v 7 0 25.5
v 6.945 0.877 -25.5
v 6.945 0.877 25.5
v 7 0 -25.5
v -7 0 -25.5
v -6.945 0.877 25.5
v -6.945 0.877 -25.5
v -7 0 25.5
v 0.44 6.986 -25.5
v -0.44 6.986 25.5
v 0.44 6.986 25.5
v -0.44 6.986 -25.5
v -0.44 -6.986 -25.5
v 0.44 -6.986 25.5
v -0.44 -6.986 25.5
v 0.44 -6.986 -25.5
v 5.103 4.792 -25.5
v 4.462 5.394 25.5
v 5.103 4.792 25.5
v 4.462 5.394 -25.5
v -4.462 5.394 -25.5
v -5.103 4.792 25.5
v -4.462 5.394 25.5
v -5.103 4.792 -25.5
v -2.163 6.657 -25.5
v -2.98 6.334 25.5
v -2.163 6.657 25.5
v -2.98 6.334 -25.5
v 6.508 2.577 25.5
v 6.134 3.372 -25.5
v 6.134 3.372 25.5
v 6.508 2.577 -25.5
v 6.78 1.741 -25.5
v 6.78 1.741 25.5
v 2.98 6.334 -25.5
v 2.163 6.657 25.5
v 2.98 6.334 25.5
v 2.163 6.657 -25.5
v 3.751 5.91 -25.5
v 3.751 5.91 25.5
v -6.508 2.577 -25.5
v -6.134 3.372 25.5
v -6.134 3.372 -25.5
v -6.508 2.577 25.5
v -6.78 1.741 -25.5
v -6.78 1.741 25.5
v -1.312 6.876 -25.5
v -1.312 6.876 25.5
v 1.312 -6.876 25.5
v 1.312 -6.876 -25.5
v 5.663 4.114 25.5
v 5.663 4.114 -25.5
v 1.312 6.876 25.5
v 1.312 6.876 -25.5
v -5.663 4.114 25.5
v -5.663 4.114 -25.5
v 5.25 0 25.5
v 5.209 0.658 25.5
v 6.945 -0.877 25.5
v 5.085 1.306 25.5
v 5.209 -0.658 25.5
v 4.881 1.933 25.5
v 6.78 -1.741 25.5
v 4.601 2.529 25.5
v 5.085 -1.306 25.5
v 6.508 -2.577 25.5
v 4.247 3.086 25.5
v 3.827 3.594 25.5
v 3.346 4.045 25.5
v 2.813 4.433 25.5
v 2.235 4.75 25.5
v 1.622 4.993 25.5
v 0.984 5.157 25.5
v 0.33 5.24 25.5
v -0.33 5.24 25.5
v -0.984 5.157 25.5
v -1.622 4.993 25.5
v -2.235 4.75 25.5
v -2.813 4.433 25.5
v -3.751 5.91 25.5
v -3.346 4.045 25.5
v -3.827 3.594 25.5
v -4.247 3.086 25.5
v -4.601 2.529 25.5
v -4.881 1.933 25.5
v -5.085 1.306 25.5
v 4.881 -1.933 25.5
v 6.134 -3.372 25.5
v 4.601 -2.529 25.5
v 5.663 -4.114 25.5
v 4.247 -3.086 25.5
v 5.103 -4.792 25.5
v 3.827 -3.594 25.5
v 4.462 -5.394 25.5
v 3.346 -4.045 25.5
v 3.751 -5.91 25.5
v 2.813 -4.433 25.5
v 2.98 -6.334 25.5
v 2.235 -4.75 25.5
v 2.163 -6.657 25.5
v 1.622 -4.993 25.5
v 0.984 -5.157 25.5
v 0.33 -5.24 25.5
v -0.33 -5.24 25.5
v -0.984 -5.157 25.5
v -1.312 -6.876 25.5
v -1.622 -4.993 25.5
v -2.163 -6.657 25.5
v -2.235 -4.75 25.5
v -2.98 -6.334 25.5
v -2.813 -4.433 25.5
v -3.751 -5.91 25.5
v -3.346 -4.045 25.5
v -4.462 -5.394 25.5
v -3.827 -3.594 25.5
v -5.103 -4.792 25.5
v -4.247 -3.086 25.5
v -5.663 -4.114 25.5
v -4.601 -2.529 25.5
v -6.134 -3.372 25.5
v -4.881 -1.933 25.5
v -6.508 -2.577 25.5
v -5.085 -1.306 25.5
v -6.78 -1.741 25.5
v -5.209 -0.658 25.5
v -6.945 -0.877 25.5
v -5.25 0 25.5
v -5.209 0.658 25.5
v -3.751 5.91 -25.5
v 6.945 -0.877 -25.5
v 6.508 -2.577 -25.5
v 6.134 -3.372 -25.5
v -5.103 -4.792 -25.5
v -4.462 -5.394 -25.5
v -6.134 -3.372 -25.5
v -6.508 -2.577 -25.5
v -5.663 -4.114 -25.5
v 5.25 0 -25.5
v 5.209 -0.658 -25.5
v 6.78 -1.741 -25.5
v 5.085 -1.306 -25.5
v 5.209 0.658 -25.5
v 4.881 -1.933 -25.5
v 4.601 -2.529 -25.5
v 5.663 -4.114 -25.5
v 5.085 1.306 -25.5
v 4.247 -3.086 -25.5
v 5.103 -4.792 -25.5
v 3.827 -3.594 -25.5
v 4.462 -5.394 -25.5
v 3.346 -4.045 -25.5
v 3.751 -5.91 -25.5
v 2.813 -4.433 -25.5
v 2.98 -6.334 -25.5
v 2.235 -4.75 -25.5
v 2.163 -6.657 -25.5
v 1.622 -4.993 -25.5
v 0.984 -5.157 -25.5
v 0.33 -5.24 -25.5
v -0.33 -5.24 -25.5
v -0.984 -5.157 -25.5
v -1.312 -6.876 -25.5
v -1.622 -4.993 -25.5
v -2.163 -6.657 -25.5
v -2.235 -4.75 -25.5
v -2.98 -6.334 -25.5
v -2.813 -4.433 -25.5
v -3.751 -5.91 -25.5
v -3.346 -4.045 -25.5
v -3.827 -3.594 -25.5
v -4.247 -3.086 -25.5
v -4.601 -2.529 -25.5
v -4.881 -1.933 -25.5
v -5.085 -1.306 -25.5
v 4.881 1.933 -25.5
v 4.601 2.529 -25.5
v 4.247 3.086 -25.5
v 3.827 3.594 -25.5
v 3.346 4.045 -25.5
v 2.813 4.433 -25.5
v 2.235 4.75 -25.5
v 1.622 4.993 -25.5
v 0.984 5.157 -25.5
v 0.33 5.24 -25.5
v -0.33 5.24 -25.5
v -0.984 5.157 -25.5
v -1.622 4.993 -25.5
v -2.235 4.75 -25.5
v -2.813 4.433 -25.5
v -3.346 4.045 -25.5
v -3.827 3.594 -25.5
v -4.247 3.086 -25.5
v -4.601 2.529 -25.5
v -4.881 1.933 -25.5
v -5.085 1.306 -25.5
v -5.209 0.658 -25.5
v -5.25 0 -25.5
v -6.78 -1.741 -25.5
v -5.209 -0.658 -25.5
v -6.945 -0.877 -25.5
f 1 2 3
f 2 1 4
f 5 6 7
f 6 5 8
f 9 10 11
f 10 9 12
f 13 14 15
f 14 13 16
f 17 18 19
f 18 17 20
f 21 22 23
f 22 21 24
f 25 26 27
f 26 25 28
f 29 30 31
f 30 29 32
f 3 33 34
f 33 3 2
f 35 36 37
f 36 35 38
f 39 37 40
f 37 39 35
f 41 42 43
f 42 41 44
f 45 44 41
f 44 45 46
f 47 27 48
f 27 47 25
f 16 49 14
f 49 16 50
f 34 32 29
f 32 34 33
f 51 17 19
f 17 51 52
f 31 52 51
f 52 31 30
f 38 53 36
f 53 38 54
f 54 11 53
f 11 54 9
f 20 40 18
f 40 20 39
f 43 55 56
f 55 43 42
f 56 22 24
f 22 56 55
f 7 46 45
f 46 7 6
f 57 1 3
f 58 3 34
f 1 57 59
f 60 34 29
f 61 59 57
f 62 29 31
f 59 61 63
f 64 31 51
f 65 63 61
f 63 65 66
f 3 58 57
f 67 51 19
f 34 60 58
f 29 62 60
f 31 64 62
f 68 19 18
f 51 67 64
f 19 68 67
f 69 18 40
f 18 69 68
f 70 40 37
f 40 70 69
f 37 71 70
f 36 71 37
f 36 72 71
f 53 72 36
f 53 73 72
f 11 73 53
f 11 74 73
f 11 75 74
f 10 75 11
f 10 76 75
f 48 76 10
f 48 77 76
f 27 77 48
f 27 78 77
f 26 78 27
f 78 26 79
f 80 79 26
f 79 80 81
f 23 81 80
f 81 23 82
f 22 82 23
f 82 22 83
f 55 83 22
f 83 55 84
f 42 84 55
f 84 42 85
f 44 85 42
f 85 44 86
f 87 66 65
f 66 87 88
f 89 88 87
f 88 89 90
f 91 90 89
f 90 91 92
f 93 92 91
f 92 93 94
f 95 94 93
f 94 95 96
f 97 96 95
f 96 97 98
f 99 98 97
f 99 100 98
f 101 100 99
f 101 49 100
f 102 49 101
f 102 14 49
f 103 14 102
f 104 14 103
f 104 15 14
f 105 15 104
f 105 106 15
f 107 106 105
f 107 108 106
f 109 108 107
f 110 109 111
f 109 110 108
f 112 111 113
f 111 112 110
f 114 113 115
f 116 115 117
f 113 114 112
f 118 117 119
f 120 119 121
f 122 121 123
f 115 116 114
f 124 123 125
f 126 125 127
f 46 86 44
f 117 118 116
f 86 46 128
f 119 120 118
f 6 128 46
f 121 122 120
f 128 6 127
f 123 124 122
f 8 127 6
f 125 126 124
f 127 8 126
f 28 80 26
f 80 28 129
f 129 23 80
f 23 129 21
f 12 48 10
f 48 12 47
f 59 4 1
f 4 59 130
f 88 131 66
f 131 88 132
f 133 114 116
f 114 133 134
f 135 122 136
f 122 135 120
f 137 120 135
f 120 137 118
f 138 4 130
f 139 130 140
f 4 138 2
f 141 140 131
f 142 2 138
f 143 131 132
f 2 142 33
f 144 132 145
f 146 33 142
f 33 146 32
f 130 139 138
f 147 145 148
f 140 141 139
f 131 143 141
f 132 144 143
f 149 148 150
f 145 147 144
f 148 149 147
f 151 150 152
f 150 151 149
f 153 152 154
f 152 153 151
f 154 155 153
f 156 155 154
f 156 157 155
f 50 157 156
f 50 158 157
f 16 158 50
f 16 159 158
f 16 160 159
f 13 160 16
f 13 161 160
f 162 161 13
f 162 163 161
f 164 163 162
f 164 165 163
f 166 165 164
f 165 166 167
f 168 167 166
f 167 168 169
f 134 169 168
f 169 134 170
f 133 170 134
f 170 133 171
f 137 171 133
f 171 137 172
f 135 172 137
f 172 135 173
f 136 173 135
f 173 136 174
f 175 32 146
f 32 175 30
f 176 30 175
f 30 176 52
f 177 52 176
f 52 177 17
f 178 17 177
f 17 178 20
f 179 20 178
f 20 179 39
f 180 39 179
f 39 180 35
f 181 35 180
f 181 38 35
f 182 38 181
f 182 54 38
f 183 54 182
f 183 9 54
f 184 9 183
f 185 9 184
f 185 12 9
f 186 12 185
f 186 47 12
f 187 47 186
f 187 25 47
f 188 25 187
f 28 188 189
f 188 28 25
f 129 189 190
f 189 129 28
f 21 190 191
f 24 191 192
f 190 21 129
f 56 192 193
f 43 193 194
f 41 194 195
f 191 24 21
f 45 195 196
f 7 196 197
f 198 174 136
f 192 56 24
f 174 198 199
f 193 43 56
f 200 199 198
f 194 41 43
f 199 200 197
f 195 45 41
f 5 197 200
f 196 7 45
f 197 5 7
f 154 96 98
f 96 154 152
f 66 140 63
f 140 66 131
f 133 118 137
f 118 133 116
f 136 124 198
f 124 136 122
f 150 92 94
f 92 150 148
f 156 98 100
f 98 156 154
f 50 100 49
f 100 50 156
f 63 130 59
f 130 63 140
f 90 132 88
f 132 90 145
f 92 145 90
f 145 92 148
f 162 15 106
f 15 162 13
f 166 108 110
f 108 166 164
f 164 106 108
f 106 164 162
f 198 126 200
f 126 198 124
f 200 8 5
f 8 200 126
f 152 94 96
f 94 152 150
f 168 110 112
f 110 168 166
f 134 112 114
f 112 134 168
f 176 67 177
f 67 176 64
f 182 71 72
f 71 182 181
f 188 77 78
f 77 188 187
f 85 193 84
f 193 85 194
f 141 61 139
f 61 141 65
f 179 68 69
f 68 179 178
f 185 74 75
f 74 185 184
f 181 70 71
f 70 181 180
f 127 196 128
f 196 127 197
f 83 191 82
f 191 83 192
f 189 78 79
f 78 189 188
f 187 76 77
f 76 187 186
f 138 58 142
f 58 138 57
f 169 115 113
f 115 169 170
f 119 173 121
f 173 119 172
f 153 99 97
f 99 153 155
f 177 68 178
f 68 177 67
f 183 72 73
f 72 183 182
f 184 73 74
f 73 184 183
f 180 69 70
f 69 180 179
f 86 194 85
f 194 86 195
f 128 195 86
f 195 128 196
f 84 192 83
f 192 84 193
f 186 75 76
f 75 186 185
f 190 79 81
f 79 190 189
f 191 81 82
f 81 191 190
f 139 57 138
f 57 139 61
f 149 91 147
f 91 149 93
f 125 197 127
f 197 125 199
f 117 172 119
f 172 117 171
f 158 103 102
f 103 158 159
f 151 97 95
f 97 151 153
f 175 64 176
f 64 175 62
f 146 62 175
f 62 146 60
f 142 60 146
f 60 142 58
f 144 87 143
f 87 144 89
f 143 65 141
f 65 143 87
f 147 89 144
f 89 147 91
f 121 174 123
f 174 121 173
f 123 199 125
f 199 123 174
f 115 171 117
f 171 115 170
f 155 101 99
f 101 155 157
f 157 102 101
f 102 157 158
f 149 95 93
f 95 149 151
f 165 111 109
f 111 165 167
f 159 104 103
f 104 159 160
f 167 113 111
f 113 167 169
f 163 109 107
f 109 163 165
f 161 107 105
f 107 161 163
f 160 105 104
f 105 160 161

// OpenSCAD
$fn = 50;


difference() {
	union() {
		translate(v = [0, 0, -25.5000000000]) {
			cylinder(h = 51, r = 7.0000000000);
		}
	}
	union() {
		translate(v = [0, 0, -100.0000000000]) {
			cylinder(h = 200, r = 5.2500000000);
		}
	}
}
